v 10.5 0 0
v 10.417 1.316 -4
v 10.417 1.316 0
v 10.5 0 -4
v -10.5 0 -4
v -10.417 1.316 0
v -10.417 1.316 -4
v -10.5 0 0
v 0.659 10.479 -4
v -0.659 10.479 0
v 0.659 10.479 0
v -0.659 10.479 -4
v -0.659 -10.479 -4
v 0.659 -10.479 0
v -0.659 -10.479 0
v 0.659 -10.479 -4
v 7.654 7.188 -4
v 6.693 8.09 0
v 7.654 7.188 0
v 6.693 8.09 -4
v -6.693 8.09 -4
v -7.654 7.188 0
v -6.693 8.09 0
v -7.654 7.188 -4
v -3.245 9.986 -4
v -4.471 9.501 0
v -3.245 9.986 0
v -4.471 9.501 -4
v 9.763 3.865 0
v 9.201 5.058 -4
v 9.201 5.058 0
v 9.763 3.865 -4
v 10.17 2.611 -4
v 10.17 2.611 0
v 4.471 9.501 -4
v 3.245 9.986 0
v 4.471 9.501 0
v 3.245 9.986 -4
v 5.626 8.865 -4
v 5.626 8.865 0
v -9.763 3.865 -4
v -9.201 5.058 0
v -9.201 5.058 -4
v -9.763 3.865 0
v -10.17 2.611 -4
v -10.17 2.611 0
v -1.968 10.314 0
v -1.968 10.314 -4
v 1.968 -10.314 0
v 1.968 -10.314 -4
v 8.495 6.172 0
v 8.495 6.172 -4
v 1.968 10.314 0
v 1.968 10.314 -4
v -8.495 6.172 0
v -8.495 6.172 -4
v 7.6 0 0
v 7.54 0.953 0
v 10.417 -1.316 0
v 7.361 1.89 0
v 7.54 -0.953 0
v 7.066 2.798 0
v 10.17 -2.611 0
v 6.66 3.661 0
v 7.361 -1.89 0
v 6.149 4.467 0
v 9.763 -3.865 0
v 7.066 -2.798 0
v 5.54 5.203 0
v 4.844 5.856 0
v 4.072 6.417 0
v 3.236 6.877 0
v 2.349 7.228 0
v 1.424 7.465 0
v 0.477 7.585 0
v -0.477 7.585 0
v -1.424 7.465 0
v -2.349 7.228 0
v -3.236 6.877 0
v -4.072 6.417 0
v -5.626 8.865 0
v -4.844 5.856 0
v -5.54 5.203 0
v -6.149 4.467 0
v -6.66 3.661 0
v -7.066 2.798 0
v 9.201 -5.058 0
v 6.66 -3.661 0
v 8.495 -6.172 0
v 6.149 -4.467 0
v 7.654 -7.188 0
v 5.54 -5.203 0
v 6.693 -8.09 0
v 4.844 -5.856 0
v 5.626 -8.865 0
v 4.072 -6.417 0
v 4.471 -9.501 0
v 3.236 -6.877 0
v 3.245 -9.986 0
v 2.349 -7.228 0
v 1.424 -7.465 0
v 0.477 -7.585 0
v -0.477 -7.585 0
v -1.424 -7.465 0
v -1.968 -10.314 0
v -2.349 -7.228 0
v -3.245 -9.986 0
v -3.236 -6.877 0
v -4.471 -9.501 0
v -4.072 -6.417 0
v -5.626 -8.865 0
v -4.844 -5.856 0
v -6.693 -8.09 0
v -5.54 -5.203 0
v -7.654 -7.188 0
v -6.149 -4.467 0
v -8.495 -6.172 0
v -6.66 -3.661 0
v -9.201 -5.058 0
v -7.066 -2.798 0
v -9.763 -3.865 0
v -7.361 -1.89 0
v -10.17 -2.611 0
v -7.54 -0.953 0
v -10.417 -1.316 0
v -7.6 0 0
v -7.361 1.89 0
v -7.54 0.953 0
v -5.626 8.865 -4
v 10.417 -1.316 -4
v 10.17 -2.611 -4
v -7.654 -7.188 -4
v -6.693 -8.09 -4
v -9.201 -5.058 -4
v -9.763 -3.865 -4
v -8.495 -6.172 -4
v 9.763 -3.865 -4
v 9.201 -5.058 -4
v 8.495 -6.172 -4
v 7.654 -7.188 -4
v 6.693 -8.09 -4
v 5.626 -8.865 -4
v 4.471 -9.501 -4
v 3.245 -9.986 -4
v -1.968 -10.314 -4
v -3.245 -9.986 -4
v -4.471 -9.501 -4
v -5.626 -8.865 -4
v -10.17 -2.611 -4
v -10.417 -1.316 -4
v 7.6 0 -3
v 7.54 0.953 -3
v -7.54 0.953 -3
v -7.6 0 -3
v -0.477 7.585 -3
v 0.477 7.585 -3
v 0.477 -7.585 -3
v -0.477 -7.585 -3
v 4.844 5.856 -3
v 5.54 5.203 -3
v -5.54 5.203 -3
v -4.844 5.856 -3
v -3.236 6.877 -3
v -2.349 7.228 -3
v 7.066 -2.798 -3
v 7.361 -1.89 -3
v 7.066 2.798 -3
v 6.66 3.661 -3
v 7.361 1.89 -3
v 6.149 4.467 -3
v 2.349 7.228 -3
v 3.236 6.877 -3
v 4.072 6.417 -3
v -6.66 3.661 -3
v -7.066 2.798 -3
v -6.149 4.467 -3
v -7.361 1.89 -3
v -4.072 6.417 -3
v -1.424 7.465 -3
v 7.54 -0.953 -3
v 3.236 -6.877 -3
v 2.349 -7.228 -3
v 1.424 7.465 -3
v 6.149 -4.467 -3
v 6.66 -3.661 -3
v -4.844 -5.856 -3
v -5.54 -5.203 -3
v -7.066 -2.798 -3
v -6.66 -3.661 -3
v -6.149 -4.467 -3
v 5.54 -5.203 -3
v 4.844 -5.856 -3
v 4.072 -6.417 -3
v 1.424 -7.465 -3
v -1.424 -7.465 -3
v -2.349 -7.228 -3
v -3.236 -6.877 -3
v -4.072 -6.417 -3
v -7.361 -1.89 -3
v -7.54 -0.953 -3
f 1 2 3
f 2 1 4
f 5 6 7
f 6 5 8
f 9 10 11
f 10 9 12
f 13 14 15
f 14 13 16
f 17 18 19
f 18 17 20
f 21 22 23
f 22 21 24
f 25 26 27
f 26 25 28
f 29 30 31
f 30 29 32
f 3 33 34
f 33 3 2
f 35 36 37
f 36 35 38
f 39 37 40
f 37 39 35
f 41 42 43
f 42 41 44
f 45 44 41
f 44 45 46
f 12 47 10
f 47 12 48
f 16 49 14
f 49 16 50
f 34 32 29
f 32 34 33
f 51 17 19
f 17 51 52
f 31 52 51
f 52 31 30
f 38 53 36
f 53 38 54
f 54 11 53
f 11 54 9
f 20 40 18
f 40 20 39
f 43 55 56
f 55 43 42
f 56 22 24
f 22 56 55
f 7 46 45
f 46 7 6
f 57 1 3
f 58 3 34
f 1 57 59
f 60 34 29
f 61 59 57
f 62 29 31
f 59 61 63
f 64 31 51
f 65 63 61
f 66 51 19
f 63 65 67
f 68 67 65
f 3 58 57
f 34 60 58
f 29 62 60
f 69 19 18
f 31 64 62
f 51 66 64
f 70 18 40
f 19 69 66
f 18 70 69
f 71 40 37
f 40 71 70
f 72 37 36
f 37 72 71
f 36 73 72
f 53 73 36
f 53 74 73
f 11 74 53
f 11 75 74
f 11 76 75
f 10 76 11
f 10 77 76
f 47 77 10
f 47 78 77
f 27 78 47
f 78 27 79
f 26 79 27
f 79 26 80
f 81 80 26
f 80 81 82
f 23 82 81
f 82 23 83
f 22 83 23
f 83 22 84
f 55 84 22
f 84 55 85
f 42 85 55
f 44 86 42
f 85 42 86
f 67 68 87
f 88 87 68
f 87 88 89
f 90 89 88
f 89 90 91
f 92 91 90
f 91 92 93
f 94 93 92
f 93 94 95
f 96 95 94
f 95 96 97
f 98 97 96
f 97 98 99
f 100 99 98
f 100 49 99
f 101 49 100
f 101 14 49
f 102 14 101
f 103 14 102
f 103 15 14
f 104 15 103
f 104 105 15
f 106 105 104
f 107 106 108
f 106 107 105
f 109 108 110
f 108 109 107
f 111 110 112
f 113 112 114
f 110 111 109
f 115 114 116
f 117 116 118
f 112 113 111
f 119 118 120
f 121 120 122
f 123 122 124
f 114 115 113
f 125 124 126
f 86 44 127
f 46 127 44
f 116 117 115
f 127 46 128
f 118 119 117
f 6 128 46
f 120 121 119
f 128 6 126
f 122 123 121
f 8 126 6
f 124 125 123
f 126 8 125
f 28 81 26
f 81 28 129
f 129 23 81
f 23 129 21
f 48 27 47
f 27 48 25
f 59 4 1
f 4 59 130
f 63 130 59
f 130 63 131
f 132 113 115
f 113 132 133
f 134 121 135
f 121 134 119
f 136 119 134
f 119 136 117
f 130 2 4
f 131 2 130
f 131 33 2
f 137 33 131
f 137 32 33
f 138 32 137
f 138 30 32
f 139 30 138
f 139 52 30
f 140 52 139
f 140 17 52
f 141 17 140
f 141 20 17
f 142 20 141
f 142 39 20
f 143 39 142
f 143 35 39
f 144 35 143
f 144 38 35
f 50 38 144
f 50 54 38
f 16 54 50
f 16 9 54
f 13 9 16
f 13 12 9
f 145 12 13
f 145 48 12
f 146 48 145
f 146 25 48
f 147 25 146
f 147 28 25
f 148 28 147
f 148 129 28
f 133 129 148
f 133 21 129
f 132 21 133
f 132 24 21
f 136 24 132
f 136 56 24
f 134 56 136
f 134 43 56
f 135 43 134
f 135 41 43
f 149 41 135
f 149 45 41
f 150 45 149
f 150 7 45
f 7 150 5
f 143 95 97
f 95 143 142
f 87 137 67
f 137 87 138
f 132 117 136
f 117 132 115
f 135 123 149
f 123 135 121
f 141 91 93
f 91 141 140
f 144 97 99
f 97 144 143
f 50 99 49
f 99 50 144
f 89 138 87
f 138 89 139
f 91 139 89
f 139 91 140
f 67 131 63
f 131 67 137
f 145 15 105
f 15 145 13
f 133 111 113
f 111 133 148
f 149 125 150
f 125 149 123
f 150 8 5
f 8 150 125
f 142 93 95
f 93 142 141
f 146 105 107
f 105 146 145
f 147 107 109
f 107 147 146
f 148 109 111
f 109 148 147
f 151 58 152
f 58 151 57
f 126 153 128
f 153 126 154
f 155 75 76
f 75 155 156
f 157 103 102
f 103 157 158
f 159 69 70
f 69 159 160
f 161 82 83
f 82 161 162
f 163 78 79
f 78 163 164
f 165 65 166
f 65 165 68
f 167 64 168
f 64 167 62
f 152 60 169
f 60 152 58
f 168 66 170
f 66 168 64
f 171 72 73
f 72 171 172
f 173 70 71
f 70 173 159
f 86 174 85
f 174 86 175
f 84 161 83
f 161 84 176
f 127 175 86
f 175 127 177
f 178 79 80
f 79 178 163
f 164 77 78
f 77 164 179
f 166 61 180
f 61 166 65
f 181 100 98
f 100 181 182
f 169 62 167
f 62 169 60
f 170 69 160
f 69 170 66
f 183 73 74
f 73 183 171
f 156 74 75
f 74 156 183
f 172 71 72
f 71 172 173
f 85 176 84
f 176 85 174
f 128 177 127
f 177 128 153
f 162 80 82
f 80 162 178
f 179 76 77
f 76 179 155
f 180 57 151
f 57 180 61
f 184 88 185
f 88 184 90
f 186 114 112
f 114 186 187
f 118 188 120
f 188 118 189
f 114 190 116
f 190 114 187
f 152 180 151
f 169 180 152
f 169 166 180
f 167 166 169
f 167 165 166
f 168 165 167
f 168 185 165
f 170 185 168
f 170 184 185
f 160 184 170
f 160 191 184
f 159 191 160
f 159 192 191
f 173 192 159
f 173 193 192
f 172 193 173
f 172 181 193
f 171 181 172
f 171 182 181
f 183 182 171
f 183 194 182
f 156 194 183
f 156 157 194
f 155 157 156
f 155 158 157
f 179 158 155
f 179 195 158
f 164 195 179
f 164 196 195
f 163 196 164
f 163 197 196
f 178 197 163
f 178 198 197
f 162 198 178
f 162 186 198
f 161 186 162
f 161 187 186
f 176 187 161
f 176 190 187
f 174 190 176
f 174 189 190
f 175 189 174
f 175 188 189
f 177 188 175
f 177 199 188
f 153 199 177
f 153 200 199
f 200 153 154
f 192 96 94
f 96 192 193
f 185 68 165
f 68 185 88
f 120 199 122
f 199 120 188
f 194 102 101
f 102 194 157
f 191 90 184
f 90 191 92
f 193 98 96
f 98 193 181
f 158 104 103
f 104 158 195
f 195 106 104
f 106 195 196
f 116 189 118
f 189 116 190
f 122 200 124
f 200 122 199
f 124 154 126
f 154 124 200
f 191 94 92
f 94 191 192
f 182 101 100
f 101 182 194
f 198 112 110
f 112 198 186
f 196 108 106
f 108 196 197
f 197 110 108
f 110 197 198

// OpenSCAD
$fn = 50;


difference() {
	union() {
		translate(v = [0, 0, -4.0000000000]) {
			cylinder(h = 4, r = 10.5000000000);
		}
	}
	union() {
		#translate(v = [0, 0, -3.0000000000]) {
			cylinder(h = 3, r = 7.6000000000);
		}
	}
}
